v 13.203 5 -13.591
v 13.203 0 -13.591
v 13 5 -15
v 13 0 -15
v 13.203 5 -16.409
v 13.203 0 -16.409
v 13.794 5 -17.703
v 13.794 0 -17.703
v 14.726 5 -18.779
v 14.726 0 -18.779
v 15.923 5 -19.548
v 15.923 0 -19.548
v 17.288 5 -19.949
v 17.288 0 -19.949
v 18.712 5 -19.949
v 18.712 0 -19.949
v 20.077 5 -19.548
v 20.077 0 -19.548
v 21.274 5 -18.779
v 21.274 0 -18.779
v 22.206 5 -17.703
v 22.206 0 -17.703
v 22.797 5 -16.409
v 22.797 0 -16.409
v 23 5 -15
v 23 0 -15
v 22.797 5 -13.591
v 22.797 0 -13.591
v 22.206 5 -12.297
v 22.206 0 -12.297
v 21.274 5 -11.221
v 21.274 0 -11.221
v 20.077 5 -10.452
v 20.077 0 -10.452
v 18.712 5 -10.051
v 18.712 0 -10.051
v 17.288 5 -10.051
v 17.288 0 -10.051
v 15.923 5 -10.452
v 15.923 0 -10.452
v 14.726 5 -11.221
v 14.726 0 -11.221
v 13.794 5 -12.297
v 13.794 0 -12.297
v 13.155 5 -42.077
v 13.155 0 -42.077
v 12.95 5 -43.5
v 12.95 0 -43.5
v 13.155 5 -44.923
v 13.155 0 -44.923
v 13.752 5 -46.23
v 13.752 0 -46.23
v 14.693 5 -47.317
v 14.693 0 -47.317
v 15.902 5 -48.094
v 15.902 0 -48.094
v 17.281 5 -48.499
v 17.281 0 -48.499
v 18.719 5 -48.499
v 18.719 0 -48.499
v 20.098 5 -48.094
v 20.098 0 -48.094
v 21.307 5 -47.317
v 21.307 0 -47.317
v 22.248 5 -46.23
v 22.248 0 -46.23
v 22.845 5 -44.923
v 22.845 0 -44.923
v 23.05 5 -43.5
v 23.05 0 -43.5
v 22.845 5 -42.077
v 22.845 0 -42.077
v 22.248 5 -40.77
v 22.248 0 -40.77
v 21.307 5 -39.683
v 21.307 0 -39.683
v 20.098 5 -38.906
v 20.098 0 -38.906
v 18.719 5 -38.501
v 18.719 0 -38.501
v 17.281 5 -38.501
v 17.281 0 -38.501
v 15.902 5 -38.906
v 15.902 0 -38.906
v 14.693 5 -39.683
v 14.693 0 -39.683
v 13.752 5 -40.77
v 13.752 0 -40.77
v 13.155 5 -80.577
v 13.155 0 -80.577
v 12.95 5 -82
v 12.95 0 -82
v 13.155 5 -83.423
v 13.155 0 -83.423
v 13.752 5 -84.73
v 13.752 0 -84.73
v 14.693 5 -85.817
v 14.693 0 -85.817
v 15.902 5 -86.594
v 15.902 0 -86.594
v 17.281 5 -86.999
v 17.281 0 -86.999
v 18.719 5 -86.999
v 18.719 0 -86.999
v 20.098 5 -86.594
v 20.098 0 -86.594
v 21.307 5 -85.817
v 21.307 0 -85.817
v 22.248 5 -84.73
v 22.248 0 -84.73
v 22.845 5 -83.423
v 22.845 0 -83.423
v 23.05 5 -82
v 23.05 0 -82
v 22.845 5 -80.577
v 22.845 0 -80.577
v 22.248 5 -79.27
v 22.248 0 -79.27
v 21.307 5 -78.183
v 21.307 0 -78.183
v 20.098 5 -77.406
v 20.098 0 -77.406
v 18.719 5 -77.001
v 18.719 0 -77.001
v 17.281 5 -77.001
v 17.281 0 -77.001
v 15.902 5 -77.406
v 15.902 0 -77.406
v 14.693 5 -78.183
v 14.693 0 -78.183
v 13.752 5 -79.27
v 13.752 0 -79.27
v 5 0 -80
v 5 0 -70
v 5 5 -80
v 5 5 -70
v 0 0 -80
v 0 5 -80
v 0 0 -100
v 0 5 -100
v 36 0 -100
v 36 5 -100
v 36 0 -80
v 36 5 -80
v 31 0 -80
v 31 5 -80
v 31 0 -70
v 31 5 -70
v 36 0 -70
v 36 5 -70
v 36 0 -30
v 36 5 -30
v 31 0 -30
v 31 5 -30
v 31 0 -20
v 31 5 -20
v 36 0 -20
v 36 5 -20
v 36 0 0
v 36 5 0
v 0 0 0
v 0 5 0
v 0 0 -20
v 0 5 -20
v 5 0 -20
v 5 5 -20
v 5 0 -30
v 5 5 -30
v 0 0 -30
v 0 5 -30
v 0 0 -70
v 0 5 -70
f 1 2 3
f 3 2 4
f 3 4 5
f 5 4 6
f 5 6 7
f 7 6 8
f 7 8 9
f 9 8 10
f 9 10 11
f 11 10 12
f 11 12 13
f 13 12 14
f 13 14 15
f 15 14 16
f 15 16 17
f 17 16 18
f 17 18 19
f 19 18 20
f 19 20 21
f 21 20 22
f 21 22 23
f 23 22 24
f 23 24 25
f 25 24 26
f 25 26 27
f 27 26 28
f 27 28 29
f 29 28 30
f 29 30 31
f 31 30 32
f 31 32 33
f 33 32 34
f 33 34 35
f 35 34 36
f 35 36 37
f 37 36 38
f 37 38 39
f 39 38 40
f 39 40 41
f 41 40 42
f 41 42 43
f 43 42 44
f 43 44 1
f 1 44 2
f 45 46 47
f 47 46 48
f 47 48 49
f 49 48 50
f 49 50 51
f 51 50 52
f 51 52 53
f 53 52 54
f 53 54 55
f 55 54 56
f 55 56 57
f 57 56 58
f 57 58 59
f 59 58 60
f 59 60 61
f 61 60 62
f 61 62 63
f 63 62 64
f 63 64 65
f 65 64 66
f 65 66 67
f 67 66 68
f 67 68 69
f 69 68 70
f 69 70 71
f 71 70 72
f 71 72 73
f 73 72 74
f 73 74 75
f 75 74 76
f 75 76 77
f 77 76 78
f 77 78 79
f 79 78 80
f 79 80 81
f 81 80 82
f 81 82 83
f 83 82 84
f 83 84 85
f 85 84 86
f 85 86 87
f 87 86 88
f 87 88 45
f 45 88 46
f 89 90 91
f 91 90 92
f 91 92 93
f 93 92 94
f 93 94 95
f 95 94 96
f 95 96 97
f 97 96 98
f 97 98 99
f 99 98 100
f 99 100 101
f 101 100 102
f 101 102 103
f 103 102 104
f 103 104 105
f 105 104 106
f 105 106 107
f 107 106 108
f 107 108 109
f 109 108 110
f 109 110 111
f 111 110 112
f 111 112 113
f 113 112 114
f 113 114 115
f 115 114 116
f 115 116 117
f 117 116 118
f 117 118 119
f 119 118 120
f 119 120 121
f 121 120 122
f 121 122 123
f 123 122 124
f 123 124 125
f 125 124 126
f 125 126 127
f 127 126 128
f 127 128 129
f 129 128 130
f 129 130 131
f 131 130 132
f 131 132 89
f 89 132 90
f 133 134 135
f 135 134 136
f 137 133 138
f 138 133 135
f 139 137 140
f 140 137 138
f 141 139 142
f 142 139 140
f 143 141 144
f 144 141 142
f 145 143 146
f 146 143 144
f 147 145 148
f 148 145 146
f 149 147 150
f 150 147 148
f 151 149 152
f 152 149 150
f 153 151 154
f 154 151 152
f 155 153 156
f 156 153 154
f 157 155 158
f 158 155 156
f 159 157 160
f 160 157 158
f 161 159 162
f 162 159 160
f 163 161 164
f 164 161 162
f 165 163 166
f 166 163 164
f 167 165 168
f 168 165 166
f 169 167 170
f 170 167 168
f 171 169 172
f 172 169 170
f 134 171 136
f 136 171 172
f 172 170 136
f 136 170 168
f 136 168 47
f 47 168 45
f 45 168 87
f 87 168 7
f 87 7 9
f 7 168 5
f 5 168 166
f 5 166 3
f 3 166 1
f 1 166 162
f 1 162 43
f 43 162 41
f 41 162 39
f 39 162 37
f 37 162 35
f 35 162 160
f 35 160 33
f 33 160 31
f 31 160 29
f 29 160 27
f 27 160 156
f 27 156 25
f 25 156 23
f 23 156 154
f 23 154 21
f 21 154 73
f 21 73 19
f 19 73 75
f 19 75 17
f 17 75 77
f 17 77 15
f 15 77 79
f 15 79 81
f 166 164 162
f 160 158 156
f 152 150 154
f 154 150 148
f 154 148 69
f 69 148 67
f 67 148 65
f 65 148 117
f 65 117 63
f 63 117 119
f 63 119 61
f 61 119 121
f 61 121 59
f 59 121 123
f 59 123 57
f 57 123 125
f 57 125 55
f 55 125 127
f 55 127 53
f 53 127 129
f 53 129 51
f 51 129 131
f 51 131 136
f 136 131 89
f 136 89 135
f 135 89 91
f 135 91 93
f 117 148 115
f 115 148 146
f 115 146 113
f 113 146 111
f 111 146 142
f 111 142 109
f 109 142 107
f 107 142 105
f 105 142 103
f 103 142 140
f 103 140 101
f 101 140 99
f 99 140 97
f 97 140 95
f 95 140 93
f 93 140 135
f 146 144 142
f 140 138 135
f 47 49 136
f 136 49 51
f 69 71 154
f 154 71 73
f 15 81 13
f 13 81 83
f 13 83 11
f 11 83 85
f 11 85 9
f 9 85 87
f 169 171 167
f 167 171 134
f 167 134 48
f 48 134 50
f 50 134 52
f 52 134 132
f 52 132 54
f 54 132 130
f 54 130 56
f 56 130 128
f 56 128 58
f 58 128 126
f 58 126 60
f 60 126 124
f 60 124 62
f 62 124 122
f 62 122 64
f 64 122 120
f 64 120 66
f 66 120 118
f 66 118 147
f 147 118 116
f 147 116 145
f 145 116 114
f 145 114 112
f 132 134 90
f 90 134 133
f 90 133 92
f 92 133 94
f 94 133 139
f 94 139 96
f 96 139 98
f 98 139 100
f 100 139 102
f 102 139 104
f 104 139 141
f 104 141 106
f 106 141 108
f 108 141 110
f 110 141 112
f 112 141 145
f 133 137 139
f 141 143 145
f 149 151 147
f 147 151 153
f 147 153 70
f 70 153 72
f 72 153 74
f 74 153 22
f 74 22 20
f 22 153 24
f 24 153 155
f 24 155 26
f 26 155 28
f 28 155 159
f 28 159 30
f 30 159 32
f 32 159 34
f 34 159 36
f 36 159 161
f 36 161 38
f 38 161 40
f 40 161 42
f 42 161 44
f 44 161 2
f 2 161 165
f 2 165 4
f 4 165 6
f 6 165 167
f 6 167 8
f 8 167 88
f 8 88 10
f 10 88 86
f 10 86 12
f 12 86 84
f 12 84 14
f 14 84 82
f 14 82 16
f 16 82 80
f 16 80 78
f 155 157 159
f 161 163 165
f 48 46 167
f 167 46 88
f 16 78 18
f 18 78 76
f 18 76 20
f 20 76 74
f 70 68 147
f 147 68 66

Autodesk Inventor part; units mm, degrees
ref_plane "YZ Plane" through (0, 0, 0) normal (1, 0, 0) x (0, 1, 0)
ref_plane "XZ Plane" through (0, 0, 0) normal (0, 1, 0) x (-1, 0, 0)
ref_plane "XY Plane" through (0, 0, 0) normal (0, 0, 1) x (1, 0, 0)
sketch "Sketch2" plane through (0, 0, 0) normal (0, 1, 0) x (-1, 0, 0)
  line L0 (0, 0) -> (-36, 0)
  line L1 (-36, 0) -> (-36, -100)
  line L2 (-36, -100) -> (0, -100)
  line L3 (0, -100) -> (0, 0)
  line L4 (-36, 0) -> (-36, -20)
  line L5 (-36, -20) -> (0, -20)
  line L6 (-36, -100) -> (-36, -80)
  line L7 (-36, -80) -> (-36, -61.7109)
  line L8 (0, -61.7109) -> (0, -80)
  line L9 (-36, -80) -> (-36, -70)
  line L10 (-36, -70) -> (0, -70)
  line L11 (0, -80) -> (-36, -80)
  line L12 (0, -70) -> (0, -80)
  line L13 (0, -70) -> (-5, -70)
  line L14 (-5, -70) -> (-5, -80)
  line L15 (-36, -20) -> (-36, -30)
  line L16 (-36, -30) -> (0, -30)
  line L17 (0, -20) -> (-5, -20)
  line L18 (-5, -20) -> (-5, -30)
  line L19 (-36, -80) -> (-31, -80)
  line L20 (-31, -80) -> (-31, -70)
  line L21 (-31, -30) -> (-31, -20)
  line L22 (-18, 0) -> (-18, -15)
  line L23 (-18, -15) -> (-18, -43.5)
  circle A0 centre (-18, -43.5) radius 5.05
  line L24 (-18, -43.5) -> (-18, -82)
  circle A1 centre (-18, -82) radius 5.05
  circle A2 centre (-18, -15) radius 5
  dimension "d0" = 36
  dimension "d1" = 100
  dimension "d2" = 20
  dimension "d3" = 20
  dimension "d4" = 10
  dimension "d5" = 5
  dimension "d6" = 10
  dimension "d7" = 5
  dimension "d8" = 5
  dimension "d9" = 15
  dimension "d11" = 28.5
  dimension "d12" = 10.1
  dimension "d13" = 38.5
  dimension "d14" = 10.1
extrude "Extrusion1" add sketch "Sketch2" along normal blind 5 contours L3 L5 A2 L22 L0 | L22 A2 L5 L1 L0 | L3 L10 L24 A0 L23 L16 | L18 L16 L23 L5 | L23 L16 L21 L5 | L16 L23 A0 L24 L10 L1 | L3 L2 L1 L11 A1 | L14 L11 A1 L24 L10 | L24 A1 L11 L20 L10
equation "\"BendRadius\" = Thickness"
equation "\"BendReliefWidth\" = Thickness"
equation "\"BendReliefDepth\" = 0.5 * Thickness"
equation "\"CornerReliefSize\" = 4 * Thickness"
equation "\"MinimumRemnant\" = 2 * Thickness"
equation "\"TransitionRadius\" = BendRadius"
equation "\"JacobiRadiusSize\" = BendRadius"
equation "\"GapSize\" = Thickness"
equation "\"Thickness\" = 0.5"
